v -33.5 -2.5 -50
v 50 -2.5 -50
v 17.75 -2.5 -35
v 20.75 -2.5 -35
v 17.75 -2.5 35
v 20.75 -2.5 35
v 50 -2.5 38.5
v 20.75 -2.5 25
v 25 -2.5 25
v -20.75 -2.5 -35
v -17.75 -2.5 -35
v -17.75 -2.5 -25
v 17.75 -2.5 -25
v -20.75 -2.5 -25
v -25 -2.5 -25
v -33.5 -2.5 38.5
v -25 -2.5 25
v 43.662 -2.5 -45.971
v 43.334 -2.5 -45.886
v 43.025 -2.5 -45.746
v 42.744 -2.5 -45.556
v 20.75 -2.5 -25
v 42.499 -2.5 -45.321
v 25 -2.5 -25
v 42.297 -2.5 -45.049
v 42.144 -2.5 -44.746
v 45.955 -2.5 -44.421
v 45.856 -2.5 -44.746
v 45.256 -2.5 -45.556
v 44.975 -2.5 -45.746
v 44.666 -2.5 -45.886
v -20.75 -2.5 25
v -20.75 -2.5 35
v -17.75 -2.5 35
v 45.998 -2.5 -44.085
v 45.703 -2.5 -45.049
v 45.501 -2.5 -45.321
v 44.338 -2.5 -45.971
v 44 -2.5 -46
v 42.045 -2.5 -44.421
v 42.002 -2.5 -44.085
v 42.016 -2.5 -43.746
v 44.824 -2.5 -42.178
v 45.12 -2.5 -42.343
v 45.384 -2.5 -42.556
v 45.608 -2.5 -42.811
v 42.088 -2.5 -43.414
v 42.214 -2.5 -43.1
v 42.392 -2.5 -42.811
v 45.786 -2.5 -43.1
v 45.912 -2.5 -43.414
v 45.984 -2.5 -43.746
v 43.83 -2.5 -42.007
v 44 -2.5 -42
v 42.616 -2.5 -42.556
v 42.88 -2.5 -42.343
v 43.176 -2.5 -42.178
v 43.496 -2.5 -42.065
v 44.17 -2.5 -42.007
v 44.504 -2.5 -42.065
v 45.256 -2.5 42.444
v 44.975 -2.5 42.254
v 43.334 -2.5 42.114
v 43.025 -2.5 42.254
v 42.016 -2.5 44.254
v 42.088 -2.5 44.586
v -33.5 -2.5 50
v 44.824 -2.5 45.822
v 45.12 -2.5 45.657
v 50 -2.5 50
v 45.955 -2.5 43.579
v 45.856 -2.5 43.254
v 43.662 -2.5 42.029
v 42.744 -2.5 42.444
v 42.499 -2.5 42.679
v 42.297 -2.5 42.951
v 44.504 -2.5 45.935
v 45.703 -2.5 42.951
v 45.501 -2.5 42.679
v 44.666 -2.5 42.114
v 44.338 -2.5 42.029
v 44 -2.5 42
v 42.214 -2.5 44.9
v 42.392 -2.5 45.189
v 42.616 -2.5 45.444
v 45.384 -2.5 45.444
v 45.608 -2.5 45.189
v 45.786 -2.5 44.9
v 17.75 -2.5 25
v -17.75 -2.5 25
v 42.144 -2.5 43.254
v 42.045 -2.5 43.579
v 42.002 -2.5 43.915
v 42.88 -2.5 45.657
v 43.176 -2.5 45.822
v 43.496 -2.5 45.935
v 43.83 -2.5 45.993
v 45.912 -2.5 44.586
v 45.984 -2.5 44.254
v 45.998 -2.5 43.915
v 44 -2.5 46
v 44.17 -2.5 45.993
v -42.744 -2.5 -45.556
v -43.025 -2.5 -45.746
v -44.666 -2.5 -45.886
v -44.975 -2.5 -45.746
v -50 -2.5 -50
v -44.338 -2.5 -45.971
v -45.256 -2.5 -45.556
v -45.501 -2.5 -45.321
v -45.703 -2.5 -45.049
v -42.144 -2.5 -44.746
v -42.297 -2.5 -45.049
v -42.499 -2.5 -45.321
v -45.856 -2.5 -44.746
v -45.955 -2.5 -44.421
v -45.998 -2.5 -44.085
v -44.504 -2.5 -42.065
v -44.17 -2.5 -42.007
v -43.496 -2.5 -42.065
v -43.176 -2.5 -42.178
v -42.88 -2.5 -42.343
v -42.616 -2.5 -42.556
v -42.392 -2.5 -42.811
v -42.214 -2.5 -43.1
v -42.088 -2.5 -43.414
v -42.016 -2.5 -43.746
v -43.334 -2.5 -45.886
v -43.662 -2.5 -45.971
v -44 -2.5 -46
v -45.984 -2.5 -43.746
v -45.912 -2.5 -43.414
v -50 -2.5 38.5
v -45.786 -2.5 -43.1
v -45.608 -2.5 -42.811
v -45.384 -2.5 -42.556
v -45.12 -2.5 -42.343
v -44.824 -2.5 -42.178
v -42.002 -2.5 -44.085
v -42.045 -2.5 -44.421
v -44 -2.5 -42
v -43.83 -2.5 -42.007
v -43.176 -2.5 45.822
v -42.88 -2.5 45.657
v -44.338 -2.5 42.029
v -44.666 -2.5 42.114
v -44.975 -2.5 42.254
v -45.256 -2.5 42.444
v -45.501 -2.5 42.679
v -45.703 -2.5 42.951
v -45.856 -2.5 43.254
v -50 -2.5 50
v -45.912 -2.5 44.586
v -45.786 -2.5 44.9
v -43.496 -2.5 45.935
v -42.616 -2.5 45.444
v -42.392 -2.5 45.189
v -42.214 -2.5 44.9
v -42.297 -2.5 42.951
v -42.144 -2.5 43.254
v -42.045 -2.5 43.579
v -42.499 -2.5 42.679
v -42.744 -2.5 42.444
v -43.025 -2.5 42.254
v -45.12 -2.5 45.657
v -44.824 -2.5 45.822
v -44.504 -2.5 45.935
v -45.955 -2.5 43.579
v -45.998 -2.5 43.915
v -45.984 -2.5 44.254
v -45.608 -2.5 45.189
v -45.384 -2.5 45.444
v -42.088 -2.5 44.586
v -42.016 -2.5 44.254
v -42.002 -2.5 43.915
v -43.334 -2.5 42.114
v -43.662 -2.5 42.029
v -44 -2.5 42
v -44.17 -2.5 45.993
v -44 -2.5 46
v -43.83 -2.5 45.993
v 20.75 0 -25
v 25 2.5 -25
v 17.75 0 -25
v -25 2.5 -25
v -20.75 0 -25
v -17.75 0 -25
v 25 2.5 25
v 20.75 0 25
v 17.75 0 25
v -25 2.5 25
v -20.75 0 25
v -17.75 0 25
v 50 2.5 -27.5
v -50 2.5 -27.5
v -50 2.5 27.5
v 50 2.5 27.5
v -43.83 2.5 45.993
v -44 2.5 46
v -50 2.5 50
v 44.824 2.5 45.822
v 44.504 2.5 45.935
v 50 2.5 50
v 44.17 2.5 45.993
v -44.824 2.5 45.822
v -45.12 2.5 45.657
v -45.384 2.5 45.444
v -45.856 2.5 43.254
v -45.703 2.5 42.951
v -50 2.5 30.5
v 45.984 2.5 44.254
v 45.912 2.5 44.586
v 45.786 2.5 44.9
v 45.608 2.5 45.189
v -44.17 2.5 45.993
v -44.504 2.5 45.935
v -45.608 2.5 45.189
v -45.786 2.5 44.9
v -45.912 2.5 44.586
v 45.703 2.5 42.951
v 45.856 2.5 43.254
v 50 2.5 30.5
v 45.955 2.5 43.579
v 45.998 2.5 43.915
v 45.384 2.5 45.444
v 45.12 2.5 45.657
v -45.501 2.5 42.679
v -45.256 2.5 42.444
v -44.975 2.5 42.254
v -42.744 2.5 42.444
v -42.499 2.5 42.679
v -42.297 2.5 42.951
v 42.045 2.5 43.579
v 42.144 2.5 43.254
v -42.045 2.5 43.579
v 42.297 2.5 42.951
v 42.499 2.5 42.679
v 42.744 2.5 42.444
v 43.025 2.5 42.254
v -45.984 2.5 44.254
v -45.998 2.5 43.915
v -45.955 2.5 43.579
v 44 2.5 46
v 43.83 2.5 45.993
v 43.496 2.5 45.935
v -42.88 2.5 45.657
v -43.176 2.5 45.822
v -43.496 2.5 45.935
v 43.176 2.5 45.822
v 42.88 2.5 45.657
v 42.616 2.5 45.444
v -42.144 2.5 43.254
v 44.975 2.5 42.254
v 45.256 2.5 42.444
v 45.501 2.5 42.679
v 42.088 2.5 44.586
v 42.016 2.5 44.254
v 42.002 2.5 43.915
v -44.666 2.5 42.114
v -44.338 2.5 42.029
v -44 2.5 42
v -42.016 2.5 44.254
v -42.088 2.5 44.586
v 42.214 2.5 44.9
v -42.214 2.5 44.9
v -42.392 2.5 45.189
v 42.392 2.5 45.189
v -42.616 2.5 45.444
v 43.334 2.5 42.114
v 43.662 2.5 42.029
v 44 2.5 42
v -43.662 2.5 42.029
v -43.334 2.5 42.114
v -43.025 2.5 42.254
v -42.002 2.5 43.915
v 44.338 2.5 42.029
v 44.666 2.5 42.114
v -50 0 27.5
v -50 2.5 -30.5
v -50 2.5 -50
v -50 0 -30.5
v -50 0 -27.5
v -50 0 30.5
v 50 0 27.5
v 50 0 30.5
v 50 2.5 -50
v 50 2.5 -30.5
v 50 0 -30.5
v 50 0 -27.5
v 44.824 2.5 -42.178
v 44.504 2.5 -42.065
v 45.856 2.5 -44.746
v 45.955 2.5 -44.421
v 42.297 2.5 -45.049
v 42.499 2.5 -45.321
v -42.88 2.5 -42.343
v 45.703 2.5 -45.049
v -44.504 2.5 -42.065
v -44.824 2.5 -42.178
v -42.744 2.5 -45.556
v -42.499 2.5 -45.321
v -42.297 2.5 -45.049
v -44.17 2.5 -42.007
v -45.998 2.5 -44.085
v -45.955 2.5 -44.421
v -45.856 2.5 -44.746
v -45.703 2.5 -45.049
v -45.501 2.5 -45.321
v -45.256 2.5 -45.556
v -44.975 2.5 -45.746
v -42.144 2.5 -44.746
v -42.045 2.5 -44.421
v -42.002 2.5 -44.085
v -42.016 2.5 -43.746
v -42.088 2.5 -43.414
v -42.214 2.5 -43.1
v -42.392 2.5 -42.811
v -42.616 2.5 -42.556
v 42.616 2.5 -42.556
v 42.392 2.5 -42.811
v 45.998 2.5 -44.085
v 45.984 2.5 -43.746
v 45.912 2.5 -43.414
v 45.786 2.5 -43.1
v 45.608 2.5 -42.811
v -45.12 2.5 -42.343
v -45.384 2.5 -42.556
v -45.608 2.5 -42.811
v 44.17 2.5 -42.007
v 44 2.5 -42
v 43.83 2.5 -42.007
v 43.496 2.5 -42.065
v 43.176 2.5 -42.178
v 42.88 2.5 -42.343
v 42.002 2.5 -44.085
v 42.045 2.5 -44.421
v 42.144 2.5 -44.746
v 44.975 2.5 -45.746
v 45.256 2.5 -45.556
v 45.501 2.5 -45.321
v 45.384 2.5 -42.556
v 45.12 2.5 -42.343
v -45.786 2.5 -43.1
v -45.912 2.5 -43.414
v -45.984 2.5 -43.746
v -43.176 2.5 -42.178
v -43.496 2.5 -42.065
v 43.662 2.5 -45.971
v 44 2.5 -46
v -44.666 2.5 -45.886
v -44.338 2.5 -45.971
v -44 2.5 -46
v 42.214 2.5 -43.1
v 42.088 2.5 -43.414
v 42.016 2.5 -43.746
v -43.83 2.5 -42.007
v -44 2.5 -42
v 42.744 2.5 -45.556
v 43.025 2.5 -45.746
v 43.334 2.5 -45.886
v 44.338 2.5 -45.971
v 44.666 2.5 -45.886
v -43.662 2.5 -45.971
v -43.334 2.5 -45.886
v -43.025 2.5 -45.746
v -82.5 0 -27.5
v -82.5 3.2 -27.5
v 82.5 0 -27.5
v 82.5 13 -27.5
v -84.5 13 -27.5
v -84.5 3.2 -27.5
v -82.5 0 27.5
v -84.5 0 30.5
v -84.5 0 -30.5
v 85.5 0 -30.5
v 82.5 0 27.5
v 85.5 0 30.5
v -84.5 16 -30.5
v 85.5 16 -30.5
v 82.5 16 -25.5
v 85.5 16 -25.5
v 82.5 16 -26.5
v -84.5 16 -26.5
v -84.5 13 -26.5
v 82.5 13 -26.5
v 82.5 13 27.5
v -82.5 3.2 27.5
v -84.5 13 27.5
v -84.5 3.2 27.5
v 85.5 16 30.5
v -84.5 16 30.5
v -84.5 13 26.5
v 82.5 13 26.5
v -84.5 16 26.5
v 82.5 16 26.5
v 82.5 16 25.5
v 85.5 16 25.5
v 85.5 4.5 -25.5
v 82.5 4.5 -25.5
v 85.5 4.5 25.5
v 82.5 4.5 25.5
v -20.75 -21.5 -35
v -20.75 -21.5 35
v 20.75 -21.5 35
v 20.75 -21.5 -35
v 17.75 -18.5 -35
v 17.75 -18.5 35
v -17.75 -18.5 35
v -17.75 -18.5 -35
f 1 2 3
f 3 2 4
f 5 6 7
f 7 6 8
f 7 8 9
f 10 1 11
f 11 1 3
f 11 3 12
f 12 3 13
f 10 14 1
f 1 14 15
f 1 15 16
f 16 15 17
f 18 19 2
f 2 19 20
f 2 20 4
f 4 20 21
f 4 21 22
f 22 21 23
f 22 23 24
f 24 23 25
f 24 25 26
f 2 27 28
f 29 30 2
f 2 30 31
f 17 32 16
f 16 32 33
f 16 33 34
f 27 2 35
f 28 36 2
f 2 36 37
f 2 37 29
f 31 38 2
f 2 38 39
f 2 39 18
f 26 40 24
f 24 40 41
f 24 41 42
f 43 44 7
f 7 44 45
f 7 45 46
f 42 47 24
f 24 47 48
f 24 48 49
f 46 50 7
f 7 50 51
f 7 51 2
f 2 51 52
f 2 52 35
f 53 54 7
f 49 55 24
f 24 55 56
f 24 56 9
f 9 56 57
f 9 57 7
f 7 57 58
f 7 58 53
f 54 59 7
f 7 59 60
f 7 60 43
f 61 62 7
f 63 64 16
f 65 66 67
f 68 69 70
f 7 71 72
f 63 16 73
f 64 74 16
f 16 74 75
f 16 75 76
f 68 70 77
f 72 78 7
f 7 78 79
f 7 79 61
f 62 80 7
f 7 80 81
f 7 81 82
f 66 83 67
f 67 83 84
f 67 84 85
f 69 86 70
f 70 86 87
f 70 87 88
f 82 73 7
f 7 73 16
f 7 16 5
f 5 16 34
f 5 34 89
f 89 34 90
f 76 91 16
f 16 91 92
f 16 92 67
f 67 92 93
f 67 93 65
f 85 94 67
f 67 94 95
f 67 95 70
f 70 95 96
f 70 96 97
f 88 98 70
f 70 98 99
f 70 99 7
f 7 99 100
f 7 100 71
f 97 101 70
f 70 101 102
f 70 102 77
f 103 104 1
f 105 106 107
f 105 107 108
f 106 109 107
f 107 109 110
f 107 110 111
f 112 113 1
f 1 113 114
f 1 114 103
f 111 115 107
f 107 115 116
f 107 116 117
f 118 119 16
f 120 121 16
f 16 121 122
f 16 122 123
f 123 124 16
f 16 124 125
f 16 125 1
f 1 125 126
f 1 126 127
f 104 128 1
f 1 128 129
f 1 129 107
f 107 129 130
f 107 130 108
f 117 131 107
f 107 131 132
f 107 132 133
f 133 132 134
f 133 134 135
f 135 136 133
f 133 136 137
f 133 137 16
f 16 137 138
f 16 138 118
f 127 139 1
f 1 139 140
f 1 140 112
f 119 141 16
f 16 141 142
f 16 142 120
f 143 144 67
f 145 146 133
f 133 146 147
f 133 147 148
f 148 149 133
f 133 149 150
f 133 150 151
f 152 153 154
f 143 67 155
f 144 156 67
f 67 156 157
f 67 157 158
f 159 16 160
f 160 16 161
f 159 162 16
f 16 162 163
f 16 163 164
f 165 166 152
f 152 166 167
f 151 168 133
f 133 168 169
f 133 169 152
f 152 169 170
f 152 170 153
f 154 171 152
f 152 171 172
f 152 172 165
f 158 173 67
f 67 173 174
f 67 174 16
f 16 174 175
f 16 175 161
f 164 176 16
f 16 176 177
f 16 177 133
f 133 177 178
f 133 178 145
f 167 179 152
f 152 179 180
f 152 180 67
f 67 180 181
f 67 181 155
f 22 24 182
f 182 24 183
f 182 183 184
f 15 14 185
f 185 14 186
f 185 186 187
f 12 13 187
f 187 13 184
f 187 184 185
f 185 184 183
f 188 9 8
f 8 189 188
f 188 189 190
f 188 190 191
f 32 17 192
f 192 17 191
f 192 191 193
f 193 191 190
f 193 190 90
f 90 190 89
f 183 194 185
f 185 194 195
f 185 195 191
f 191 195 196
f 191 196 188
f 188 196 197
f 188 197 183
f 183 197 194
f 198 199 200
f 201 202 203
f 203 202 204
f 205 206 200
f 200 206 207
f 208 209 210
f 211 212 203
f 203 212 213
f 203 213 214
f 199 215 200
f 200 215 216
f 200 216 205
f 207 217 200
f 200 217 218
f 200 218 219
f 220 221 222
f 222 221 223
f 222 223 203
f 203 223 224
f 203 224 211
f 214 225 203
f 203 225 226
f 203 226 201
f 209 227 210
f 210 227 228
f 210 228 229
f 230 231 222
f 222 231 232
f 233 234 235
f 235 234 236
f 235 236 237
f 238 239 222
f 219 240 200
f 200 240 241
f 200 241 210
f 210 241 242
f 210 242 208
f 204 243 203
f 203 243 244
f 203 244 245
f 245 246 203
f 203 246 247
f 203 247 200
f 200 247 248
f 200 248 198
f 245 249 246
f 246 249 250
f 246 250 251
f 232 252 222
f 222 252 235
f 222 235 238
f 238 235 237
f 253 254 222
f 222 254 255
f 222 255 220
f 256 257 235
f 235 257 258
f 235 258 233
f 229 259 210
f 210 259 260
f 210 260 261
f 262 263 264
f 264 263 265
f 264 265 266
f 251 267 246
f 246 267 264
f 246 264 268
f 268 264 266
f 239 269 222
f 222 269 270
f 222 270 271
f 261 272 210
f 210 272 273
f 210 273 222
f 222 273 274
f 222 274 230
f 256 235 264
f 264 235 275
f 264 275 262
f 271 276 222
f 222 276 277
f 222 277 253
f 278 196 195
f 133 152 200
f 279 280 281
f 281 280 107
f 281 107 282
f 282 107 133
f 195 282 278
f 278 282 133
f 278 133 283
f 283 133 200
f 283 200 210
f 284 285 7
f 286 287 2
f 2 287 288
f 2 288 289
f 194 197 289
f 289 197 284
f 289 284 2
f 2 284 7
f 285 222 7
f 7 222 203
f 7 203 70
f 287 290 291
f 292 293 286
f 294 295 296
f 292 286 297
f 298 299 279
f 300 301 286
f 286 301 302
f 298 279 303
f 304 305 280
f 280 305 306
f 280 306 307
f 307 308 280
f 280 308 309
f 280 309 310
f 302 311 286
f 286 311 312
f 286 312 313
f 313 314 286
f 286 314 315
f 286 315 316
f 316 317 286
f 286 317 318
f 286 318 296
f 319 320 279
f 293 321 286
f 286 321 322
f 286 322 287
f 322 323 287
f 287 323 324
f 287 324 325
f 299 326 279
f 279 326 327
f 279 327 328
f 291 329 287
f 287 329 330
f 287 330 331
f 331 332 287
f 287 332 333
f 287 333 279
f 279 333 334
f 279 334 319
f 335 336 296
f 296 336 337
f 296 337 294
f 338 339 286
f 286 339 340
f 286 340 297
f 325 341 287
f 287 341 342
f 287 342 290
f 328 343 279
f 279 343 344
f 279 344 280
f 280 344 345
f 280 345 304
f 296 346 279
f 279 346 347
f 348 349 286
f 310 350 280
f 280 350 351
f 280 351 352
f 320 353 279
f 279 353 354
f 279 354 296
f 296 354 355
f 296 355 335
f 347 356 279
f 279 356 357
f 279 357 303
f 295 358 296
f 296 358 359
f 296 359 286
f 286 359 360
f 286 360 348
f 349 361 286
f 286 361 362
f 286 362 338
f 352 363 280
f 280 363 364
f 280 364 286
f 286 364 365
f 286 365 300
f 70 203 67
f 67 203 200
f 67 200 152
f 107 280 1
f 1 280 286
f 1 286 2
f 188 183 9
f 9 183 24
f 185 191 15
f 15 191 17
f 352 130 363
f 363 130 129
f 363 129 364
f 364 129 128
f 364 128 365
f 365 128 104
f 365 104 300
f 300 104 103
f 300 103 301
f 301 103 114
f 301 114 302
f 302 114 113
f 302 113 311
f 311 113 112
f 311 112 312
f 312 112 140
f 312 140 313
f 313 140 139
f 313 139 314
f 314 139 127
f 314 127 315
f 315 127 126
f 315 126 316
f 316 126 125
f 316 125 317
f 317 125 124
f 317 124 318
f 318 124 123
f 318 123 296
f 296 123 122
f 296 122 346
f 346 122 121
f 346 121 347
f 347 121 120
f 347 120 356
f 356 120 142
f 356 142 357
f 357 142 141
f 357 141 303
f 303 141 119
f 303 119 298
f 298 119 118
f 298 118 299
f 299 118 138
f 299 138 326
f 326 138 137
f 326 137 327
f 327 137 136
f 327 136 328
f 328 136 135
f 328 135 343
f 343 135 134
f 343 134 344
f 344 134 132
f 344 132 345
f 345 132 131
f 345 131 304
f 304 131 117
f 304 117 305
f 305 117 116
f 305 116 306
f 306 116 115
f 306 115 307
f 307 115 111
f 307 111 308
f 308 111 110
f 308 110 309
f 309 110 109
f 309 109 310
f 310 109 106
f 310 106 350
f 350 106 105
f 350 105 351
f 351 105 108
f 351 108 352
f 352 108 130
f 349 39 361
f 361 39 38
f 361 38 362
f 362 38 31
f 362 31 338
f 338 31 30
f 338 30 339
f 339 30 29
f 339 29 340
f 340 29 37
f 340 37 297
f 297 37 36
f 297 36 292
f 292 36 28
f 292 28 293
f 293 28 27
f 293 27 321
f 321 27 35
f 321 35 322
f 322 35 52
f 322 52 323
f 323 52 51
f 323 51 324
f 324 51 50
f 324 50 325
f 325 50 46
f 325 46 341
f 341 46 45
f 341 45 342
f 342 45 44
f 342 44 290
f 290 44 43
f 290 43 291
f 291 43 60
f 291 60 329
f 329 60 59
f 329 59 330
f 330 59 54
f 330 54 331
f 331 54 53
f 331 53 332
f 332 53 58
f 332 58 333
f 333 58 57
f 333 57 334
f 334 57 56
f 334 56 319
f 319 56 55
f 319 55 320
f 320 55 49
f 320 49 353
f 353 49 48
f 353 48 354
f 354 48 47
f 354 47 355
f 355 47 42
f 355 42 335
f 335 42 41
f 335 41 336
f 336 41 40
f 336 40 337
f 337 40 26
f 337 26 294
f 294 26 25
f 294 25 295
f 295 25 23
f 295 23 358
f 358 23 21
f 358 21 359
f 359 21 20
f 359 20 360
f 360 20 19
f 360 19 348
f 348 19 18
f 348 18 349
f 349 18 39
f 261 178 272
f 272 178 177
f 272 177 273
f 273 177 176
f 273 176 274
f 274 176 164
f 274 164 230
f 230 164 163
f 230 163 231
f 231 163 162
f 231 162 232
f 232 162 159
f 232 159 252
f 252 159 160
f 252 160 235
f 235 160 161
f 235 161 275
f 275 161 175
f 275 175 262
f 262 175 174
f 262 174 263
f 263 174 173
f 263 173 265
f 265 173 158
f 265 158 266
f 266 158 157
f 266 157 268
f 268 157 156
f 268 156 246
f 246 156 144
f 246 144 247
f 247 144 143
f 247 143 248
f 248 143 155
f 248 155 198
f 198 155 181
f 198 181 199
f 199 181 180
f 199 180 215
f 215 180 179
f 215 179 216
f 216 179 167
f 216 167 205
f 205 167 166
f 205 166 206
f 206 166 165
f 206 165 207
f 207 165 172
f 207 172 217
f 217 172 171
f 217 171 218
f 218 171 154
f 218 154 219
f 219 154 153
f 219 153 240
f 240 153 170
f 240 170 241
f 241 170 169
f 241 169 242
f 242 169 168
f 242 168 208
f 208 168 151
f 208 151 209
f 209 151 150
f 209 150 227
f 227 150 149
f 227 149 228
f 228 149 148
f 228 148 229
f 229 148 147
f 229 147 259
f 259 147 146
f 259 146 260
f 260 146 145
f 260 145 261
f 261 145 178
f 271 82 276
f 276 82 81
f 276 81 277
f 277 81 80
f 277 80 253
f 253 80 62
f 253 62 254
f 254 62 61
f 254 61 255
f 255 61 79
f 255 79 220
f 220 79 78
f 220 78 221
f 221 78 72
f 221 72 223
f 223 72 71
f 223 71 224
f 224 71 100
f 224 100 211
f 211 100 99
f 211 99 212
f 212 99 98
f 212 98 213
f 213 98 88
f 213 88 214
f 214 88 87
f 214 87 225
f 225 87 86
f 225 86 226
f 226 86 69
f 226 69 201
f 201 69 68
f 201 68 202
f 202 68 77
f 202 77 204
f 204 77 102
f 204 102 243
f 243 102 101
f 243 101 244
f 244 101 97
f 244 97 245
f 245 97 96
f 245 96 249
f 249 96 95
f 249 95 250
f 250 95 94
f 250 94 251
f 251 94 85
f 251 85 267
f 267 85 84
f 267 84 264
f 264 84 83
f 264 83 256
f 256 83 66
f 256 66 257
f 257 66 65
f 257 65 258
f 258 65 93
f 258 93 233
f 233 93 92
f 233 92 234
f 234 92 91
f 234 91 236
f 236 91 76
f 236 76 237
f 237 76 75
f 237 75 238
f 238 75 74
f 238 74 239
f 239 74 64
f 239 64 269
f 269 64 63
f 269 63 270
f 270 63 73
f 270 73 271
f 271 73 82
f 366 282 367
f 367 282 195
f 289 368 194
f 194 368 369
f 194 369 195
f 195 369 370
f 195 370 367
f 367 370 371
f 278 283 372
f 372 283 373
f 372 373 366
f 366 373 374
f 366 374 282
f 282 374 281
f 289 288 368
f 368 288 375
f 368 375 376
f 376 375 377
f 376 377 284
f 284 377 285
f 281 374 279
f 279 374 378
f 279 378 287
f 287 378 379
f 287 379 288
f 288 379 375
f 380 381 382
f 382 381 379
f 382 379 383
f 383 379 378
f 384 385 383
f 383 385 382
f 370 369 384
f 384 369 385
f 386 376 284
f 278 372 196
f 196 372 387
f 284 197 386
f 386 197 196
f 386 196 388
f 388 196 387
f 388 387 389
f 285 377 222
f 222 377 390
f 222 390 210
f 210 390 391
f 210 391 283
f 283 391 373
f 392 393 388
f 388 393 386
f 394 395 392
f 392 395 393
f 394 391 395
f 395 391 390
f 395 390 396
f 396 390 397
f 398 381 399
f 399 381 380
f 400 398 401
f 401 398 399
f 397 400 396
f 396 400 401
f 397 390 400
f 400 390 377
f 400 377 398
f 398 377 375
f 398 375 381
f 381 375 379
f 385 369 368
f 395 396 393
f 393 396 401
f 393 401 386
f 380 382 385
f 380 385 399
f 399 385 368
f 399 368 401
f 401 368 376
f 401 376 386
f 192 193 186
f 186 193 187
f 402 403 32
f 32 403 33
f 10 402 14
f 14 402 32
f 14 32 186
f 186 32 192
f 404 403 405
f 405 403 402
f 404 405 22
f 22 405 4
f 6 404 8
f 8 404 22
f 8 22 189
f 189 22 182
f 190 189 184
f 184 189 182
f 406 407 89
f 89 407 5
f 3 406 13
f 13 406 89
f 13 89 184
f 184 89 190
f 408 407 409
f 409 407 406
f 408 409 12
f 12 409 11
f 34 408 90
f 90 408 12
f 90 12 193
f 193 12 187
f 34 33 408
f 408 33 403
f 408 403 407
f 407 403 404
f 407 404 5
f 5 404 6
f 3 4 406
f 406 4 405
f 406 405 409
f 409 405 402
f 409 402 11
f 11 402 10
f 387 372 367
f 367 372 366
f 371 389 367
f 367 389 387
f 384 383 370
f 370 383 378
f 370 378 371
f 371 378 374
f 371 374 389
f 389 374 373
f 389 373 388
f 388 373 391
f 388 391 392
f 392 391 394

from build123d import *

# Parameters (mm, degrees)
SKETCH_2_W      = 100
SKETCH_2_H      = 100
SKETCH_2_R      = 2
SKETCH_2_W_2    = 50
SKETCH_2_H_2    = 50
EXTRUDE_1_DEPTH = 2.5
EXTRUDE_2_DEPTH = 82.5
EXTRUDE_3_DEPTH = 3
EXTRUDE_4_DEPTH = 35
EXTRUDE_5_DEPTH = 2


with BuildPart() as part:
    # 스케치2 → 보스-돌출1 (new, symmetric)
    with BuildSketch(Plane(origin=(0, 0, 0), x_dir=(1, 0, 0), z_dir=(0, 1, 0))):
        Rectangle(SKETCH_2_W, SKETCH_2_H)
        with Locations(Location((-44, 44, 0), (0, 0, 270))):
            Circle(SKETCH_2_R, mode=Mode.SUBTRACT)
        with Locations(Location((44, 44, 0), (0, 0, 270))):
            Circle(SKETCH_2_R, mode=Mode.SUBTRACT)
        with Locations(Location((-44, -44, 0), (0, 0, 270))):
            Circle(SKETCH_2_R, mode=Mode.SUBTRACT)
        with Locations(Location((44, -44, 0), (0, 0, 270))):
            Circle(SKETCH_2_R, mode=Mode.SUBTRACT)
        Rectangle(SKETCH_2_W_2, SKETCH_2_H_2, mode=Mode.SUBTRACT)
    extrude(amount=EXTRUDE_1_DEPTH, both=True)

    # 스케치3 → 보스-돌출2 (add, symmetric)
    with BuildSketch(Plane(origin=(0, 0, 0), x_dir=(0, 0, -1), z_dir=(1, 0, 0))):
        Polygon((-30.5, 0), (-30.5, 16), (-26.5, 16), (-26.5, 13), (-27.5, 13), (-27.5, 0), align=None)
        Polygon((27.5, 0), (30.5, 0), (30.5, 16), (26.5, 16), (26.5, 13), (27.5, 13), align=None)
    extrude(amount=EXTRUDE_2_DEPTH, both=True)

    # 스케치4 → 보스-돌출3 (add)
    with BuildSketch(Plane(origin=(82.5, 0, 0), x_dir=(0, 0, -1), z_dir=(1, 0, 0))):
        Polygon((-30.5, 16), (-25.5, 16), (-25.5, 4.5), (25.5, 4.5), (25.5, 16), (30.5, 16), (30.5, 0), (-30.5, 0), align=None)
    extrude(amount=EXTRUDE_3_DEPTH)

    # 스케치6 → 보스-돌출4 (add, symmetric)
    with BuildSketch(Plane.XY):
        Polygon((-20.75, 0), (-20.75, -21.5), (20.75, -21.5), (20.75, 0), (17.75, 0), (17.75, -18.5), (-17.75, -18.5), (-17.75, 0), align=None)
    extrude(amount=EXTRUDE_4_DEPTH, both=True)

    # 스케치7 → 보스-돌출5 (add)
    with BuildSketch(Plane.ZY.offset(82.5)):
        Polygon((27.5, 3.2), (-27.5, 3.2), (-27.5, 13), (-26.5, 13), (-26.5, 16), (-30.5, 16), (-30.5, 0), (30.5, 0), (30.5, 16), (26.5, 16), (26.5, 13), (27.5, 13), align=None)
    extrude(amount=EXTRUDE_5_DEPTH)


solid = part.part
